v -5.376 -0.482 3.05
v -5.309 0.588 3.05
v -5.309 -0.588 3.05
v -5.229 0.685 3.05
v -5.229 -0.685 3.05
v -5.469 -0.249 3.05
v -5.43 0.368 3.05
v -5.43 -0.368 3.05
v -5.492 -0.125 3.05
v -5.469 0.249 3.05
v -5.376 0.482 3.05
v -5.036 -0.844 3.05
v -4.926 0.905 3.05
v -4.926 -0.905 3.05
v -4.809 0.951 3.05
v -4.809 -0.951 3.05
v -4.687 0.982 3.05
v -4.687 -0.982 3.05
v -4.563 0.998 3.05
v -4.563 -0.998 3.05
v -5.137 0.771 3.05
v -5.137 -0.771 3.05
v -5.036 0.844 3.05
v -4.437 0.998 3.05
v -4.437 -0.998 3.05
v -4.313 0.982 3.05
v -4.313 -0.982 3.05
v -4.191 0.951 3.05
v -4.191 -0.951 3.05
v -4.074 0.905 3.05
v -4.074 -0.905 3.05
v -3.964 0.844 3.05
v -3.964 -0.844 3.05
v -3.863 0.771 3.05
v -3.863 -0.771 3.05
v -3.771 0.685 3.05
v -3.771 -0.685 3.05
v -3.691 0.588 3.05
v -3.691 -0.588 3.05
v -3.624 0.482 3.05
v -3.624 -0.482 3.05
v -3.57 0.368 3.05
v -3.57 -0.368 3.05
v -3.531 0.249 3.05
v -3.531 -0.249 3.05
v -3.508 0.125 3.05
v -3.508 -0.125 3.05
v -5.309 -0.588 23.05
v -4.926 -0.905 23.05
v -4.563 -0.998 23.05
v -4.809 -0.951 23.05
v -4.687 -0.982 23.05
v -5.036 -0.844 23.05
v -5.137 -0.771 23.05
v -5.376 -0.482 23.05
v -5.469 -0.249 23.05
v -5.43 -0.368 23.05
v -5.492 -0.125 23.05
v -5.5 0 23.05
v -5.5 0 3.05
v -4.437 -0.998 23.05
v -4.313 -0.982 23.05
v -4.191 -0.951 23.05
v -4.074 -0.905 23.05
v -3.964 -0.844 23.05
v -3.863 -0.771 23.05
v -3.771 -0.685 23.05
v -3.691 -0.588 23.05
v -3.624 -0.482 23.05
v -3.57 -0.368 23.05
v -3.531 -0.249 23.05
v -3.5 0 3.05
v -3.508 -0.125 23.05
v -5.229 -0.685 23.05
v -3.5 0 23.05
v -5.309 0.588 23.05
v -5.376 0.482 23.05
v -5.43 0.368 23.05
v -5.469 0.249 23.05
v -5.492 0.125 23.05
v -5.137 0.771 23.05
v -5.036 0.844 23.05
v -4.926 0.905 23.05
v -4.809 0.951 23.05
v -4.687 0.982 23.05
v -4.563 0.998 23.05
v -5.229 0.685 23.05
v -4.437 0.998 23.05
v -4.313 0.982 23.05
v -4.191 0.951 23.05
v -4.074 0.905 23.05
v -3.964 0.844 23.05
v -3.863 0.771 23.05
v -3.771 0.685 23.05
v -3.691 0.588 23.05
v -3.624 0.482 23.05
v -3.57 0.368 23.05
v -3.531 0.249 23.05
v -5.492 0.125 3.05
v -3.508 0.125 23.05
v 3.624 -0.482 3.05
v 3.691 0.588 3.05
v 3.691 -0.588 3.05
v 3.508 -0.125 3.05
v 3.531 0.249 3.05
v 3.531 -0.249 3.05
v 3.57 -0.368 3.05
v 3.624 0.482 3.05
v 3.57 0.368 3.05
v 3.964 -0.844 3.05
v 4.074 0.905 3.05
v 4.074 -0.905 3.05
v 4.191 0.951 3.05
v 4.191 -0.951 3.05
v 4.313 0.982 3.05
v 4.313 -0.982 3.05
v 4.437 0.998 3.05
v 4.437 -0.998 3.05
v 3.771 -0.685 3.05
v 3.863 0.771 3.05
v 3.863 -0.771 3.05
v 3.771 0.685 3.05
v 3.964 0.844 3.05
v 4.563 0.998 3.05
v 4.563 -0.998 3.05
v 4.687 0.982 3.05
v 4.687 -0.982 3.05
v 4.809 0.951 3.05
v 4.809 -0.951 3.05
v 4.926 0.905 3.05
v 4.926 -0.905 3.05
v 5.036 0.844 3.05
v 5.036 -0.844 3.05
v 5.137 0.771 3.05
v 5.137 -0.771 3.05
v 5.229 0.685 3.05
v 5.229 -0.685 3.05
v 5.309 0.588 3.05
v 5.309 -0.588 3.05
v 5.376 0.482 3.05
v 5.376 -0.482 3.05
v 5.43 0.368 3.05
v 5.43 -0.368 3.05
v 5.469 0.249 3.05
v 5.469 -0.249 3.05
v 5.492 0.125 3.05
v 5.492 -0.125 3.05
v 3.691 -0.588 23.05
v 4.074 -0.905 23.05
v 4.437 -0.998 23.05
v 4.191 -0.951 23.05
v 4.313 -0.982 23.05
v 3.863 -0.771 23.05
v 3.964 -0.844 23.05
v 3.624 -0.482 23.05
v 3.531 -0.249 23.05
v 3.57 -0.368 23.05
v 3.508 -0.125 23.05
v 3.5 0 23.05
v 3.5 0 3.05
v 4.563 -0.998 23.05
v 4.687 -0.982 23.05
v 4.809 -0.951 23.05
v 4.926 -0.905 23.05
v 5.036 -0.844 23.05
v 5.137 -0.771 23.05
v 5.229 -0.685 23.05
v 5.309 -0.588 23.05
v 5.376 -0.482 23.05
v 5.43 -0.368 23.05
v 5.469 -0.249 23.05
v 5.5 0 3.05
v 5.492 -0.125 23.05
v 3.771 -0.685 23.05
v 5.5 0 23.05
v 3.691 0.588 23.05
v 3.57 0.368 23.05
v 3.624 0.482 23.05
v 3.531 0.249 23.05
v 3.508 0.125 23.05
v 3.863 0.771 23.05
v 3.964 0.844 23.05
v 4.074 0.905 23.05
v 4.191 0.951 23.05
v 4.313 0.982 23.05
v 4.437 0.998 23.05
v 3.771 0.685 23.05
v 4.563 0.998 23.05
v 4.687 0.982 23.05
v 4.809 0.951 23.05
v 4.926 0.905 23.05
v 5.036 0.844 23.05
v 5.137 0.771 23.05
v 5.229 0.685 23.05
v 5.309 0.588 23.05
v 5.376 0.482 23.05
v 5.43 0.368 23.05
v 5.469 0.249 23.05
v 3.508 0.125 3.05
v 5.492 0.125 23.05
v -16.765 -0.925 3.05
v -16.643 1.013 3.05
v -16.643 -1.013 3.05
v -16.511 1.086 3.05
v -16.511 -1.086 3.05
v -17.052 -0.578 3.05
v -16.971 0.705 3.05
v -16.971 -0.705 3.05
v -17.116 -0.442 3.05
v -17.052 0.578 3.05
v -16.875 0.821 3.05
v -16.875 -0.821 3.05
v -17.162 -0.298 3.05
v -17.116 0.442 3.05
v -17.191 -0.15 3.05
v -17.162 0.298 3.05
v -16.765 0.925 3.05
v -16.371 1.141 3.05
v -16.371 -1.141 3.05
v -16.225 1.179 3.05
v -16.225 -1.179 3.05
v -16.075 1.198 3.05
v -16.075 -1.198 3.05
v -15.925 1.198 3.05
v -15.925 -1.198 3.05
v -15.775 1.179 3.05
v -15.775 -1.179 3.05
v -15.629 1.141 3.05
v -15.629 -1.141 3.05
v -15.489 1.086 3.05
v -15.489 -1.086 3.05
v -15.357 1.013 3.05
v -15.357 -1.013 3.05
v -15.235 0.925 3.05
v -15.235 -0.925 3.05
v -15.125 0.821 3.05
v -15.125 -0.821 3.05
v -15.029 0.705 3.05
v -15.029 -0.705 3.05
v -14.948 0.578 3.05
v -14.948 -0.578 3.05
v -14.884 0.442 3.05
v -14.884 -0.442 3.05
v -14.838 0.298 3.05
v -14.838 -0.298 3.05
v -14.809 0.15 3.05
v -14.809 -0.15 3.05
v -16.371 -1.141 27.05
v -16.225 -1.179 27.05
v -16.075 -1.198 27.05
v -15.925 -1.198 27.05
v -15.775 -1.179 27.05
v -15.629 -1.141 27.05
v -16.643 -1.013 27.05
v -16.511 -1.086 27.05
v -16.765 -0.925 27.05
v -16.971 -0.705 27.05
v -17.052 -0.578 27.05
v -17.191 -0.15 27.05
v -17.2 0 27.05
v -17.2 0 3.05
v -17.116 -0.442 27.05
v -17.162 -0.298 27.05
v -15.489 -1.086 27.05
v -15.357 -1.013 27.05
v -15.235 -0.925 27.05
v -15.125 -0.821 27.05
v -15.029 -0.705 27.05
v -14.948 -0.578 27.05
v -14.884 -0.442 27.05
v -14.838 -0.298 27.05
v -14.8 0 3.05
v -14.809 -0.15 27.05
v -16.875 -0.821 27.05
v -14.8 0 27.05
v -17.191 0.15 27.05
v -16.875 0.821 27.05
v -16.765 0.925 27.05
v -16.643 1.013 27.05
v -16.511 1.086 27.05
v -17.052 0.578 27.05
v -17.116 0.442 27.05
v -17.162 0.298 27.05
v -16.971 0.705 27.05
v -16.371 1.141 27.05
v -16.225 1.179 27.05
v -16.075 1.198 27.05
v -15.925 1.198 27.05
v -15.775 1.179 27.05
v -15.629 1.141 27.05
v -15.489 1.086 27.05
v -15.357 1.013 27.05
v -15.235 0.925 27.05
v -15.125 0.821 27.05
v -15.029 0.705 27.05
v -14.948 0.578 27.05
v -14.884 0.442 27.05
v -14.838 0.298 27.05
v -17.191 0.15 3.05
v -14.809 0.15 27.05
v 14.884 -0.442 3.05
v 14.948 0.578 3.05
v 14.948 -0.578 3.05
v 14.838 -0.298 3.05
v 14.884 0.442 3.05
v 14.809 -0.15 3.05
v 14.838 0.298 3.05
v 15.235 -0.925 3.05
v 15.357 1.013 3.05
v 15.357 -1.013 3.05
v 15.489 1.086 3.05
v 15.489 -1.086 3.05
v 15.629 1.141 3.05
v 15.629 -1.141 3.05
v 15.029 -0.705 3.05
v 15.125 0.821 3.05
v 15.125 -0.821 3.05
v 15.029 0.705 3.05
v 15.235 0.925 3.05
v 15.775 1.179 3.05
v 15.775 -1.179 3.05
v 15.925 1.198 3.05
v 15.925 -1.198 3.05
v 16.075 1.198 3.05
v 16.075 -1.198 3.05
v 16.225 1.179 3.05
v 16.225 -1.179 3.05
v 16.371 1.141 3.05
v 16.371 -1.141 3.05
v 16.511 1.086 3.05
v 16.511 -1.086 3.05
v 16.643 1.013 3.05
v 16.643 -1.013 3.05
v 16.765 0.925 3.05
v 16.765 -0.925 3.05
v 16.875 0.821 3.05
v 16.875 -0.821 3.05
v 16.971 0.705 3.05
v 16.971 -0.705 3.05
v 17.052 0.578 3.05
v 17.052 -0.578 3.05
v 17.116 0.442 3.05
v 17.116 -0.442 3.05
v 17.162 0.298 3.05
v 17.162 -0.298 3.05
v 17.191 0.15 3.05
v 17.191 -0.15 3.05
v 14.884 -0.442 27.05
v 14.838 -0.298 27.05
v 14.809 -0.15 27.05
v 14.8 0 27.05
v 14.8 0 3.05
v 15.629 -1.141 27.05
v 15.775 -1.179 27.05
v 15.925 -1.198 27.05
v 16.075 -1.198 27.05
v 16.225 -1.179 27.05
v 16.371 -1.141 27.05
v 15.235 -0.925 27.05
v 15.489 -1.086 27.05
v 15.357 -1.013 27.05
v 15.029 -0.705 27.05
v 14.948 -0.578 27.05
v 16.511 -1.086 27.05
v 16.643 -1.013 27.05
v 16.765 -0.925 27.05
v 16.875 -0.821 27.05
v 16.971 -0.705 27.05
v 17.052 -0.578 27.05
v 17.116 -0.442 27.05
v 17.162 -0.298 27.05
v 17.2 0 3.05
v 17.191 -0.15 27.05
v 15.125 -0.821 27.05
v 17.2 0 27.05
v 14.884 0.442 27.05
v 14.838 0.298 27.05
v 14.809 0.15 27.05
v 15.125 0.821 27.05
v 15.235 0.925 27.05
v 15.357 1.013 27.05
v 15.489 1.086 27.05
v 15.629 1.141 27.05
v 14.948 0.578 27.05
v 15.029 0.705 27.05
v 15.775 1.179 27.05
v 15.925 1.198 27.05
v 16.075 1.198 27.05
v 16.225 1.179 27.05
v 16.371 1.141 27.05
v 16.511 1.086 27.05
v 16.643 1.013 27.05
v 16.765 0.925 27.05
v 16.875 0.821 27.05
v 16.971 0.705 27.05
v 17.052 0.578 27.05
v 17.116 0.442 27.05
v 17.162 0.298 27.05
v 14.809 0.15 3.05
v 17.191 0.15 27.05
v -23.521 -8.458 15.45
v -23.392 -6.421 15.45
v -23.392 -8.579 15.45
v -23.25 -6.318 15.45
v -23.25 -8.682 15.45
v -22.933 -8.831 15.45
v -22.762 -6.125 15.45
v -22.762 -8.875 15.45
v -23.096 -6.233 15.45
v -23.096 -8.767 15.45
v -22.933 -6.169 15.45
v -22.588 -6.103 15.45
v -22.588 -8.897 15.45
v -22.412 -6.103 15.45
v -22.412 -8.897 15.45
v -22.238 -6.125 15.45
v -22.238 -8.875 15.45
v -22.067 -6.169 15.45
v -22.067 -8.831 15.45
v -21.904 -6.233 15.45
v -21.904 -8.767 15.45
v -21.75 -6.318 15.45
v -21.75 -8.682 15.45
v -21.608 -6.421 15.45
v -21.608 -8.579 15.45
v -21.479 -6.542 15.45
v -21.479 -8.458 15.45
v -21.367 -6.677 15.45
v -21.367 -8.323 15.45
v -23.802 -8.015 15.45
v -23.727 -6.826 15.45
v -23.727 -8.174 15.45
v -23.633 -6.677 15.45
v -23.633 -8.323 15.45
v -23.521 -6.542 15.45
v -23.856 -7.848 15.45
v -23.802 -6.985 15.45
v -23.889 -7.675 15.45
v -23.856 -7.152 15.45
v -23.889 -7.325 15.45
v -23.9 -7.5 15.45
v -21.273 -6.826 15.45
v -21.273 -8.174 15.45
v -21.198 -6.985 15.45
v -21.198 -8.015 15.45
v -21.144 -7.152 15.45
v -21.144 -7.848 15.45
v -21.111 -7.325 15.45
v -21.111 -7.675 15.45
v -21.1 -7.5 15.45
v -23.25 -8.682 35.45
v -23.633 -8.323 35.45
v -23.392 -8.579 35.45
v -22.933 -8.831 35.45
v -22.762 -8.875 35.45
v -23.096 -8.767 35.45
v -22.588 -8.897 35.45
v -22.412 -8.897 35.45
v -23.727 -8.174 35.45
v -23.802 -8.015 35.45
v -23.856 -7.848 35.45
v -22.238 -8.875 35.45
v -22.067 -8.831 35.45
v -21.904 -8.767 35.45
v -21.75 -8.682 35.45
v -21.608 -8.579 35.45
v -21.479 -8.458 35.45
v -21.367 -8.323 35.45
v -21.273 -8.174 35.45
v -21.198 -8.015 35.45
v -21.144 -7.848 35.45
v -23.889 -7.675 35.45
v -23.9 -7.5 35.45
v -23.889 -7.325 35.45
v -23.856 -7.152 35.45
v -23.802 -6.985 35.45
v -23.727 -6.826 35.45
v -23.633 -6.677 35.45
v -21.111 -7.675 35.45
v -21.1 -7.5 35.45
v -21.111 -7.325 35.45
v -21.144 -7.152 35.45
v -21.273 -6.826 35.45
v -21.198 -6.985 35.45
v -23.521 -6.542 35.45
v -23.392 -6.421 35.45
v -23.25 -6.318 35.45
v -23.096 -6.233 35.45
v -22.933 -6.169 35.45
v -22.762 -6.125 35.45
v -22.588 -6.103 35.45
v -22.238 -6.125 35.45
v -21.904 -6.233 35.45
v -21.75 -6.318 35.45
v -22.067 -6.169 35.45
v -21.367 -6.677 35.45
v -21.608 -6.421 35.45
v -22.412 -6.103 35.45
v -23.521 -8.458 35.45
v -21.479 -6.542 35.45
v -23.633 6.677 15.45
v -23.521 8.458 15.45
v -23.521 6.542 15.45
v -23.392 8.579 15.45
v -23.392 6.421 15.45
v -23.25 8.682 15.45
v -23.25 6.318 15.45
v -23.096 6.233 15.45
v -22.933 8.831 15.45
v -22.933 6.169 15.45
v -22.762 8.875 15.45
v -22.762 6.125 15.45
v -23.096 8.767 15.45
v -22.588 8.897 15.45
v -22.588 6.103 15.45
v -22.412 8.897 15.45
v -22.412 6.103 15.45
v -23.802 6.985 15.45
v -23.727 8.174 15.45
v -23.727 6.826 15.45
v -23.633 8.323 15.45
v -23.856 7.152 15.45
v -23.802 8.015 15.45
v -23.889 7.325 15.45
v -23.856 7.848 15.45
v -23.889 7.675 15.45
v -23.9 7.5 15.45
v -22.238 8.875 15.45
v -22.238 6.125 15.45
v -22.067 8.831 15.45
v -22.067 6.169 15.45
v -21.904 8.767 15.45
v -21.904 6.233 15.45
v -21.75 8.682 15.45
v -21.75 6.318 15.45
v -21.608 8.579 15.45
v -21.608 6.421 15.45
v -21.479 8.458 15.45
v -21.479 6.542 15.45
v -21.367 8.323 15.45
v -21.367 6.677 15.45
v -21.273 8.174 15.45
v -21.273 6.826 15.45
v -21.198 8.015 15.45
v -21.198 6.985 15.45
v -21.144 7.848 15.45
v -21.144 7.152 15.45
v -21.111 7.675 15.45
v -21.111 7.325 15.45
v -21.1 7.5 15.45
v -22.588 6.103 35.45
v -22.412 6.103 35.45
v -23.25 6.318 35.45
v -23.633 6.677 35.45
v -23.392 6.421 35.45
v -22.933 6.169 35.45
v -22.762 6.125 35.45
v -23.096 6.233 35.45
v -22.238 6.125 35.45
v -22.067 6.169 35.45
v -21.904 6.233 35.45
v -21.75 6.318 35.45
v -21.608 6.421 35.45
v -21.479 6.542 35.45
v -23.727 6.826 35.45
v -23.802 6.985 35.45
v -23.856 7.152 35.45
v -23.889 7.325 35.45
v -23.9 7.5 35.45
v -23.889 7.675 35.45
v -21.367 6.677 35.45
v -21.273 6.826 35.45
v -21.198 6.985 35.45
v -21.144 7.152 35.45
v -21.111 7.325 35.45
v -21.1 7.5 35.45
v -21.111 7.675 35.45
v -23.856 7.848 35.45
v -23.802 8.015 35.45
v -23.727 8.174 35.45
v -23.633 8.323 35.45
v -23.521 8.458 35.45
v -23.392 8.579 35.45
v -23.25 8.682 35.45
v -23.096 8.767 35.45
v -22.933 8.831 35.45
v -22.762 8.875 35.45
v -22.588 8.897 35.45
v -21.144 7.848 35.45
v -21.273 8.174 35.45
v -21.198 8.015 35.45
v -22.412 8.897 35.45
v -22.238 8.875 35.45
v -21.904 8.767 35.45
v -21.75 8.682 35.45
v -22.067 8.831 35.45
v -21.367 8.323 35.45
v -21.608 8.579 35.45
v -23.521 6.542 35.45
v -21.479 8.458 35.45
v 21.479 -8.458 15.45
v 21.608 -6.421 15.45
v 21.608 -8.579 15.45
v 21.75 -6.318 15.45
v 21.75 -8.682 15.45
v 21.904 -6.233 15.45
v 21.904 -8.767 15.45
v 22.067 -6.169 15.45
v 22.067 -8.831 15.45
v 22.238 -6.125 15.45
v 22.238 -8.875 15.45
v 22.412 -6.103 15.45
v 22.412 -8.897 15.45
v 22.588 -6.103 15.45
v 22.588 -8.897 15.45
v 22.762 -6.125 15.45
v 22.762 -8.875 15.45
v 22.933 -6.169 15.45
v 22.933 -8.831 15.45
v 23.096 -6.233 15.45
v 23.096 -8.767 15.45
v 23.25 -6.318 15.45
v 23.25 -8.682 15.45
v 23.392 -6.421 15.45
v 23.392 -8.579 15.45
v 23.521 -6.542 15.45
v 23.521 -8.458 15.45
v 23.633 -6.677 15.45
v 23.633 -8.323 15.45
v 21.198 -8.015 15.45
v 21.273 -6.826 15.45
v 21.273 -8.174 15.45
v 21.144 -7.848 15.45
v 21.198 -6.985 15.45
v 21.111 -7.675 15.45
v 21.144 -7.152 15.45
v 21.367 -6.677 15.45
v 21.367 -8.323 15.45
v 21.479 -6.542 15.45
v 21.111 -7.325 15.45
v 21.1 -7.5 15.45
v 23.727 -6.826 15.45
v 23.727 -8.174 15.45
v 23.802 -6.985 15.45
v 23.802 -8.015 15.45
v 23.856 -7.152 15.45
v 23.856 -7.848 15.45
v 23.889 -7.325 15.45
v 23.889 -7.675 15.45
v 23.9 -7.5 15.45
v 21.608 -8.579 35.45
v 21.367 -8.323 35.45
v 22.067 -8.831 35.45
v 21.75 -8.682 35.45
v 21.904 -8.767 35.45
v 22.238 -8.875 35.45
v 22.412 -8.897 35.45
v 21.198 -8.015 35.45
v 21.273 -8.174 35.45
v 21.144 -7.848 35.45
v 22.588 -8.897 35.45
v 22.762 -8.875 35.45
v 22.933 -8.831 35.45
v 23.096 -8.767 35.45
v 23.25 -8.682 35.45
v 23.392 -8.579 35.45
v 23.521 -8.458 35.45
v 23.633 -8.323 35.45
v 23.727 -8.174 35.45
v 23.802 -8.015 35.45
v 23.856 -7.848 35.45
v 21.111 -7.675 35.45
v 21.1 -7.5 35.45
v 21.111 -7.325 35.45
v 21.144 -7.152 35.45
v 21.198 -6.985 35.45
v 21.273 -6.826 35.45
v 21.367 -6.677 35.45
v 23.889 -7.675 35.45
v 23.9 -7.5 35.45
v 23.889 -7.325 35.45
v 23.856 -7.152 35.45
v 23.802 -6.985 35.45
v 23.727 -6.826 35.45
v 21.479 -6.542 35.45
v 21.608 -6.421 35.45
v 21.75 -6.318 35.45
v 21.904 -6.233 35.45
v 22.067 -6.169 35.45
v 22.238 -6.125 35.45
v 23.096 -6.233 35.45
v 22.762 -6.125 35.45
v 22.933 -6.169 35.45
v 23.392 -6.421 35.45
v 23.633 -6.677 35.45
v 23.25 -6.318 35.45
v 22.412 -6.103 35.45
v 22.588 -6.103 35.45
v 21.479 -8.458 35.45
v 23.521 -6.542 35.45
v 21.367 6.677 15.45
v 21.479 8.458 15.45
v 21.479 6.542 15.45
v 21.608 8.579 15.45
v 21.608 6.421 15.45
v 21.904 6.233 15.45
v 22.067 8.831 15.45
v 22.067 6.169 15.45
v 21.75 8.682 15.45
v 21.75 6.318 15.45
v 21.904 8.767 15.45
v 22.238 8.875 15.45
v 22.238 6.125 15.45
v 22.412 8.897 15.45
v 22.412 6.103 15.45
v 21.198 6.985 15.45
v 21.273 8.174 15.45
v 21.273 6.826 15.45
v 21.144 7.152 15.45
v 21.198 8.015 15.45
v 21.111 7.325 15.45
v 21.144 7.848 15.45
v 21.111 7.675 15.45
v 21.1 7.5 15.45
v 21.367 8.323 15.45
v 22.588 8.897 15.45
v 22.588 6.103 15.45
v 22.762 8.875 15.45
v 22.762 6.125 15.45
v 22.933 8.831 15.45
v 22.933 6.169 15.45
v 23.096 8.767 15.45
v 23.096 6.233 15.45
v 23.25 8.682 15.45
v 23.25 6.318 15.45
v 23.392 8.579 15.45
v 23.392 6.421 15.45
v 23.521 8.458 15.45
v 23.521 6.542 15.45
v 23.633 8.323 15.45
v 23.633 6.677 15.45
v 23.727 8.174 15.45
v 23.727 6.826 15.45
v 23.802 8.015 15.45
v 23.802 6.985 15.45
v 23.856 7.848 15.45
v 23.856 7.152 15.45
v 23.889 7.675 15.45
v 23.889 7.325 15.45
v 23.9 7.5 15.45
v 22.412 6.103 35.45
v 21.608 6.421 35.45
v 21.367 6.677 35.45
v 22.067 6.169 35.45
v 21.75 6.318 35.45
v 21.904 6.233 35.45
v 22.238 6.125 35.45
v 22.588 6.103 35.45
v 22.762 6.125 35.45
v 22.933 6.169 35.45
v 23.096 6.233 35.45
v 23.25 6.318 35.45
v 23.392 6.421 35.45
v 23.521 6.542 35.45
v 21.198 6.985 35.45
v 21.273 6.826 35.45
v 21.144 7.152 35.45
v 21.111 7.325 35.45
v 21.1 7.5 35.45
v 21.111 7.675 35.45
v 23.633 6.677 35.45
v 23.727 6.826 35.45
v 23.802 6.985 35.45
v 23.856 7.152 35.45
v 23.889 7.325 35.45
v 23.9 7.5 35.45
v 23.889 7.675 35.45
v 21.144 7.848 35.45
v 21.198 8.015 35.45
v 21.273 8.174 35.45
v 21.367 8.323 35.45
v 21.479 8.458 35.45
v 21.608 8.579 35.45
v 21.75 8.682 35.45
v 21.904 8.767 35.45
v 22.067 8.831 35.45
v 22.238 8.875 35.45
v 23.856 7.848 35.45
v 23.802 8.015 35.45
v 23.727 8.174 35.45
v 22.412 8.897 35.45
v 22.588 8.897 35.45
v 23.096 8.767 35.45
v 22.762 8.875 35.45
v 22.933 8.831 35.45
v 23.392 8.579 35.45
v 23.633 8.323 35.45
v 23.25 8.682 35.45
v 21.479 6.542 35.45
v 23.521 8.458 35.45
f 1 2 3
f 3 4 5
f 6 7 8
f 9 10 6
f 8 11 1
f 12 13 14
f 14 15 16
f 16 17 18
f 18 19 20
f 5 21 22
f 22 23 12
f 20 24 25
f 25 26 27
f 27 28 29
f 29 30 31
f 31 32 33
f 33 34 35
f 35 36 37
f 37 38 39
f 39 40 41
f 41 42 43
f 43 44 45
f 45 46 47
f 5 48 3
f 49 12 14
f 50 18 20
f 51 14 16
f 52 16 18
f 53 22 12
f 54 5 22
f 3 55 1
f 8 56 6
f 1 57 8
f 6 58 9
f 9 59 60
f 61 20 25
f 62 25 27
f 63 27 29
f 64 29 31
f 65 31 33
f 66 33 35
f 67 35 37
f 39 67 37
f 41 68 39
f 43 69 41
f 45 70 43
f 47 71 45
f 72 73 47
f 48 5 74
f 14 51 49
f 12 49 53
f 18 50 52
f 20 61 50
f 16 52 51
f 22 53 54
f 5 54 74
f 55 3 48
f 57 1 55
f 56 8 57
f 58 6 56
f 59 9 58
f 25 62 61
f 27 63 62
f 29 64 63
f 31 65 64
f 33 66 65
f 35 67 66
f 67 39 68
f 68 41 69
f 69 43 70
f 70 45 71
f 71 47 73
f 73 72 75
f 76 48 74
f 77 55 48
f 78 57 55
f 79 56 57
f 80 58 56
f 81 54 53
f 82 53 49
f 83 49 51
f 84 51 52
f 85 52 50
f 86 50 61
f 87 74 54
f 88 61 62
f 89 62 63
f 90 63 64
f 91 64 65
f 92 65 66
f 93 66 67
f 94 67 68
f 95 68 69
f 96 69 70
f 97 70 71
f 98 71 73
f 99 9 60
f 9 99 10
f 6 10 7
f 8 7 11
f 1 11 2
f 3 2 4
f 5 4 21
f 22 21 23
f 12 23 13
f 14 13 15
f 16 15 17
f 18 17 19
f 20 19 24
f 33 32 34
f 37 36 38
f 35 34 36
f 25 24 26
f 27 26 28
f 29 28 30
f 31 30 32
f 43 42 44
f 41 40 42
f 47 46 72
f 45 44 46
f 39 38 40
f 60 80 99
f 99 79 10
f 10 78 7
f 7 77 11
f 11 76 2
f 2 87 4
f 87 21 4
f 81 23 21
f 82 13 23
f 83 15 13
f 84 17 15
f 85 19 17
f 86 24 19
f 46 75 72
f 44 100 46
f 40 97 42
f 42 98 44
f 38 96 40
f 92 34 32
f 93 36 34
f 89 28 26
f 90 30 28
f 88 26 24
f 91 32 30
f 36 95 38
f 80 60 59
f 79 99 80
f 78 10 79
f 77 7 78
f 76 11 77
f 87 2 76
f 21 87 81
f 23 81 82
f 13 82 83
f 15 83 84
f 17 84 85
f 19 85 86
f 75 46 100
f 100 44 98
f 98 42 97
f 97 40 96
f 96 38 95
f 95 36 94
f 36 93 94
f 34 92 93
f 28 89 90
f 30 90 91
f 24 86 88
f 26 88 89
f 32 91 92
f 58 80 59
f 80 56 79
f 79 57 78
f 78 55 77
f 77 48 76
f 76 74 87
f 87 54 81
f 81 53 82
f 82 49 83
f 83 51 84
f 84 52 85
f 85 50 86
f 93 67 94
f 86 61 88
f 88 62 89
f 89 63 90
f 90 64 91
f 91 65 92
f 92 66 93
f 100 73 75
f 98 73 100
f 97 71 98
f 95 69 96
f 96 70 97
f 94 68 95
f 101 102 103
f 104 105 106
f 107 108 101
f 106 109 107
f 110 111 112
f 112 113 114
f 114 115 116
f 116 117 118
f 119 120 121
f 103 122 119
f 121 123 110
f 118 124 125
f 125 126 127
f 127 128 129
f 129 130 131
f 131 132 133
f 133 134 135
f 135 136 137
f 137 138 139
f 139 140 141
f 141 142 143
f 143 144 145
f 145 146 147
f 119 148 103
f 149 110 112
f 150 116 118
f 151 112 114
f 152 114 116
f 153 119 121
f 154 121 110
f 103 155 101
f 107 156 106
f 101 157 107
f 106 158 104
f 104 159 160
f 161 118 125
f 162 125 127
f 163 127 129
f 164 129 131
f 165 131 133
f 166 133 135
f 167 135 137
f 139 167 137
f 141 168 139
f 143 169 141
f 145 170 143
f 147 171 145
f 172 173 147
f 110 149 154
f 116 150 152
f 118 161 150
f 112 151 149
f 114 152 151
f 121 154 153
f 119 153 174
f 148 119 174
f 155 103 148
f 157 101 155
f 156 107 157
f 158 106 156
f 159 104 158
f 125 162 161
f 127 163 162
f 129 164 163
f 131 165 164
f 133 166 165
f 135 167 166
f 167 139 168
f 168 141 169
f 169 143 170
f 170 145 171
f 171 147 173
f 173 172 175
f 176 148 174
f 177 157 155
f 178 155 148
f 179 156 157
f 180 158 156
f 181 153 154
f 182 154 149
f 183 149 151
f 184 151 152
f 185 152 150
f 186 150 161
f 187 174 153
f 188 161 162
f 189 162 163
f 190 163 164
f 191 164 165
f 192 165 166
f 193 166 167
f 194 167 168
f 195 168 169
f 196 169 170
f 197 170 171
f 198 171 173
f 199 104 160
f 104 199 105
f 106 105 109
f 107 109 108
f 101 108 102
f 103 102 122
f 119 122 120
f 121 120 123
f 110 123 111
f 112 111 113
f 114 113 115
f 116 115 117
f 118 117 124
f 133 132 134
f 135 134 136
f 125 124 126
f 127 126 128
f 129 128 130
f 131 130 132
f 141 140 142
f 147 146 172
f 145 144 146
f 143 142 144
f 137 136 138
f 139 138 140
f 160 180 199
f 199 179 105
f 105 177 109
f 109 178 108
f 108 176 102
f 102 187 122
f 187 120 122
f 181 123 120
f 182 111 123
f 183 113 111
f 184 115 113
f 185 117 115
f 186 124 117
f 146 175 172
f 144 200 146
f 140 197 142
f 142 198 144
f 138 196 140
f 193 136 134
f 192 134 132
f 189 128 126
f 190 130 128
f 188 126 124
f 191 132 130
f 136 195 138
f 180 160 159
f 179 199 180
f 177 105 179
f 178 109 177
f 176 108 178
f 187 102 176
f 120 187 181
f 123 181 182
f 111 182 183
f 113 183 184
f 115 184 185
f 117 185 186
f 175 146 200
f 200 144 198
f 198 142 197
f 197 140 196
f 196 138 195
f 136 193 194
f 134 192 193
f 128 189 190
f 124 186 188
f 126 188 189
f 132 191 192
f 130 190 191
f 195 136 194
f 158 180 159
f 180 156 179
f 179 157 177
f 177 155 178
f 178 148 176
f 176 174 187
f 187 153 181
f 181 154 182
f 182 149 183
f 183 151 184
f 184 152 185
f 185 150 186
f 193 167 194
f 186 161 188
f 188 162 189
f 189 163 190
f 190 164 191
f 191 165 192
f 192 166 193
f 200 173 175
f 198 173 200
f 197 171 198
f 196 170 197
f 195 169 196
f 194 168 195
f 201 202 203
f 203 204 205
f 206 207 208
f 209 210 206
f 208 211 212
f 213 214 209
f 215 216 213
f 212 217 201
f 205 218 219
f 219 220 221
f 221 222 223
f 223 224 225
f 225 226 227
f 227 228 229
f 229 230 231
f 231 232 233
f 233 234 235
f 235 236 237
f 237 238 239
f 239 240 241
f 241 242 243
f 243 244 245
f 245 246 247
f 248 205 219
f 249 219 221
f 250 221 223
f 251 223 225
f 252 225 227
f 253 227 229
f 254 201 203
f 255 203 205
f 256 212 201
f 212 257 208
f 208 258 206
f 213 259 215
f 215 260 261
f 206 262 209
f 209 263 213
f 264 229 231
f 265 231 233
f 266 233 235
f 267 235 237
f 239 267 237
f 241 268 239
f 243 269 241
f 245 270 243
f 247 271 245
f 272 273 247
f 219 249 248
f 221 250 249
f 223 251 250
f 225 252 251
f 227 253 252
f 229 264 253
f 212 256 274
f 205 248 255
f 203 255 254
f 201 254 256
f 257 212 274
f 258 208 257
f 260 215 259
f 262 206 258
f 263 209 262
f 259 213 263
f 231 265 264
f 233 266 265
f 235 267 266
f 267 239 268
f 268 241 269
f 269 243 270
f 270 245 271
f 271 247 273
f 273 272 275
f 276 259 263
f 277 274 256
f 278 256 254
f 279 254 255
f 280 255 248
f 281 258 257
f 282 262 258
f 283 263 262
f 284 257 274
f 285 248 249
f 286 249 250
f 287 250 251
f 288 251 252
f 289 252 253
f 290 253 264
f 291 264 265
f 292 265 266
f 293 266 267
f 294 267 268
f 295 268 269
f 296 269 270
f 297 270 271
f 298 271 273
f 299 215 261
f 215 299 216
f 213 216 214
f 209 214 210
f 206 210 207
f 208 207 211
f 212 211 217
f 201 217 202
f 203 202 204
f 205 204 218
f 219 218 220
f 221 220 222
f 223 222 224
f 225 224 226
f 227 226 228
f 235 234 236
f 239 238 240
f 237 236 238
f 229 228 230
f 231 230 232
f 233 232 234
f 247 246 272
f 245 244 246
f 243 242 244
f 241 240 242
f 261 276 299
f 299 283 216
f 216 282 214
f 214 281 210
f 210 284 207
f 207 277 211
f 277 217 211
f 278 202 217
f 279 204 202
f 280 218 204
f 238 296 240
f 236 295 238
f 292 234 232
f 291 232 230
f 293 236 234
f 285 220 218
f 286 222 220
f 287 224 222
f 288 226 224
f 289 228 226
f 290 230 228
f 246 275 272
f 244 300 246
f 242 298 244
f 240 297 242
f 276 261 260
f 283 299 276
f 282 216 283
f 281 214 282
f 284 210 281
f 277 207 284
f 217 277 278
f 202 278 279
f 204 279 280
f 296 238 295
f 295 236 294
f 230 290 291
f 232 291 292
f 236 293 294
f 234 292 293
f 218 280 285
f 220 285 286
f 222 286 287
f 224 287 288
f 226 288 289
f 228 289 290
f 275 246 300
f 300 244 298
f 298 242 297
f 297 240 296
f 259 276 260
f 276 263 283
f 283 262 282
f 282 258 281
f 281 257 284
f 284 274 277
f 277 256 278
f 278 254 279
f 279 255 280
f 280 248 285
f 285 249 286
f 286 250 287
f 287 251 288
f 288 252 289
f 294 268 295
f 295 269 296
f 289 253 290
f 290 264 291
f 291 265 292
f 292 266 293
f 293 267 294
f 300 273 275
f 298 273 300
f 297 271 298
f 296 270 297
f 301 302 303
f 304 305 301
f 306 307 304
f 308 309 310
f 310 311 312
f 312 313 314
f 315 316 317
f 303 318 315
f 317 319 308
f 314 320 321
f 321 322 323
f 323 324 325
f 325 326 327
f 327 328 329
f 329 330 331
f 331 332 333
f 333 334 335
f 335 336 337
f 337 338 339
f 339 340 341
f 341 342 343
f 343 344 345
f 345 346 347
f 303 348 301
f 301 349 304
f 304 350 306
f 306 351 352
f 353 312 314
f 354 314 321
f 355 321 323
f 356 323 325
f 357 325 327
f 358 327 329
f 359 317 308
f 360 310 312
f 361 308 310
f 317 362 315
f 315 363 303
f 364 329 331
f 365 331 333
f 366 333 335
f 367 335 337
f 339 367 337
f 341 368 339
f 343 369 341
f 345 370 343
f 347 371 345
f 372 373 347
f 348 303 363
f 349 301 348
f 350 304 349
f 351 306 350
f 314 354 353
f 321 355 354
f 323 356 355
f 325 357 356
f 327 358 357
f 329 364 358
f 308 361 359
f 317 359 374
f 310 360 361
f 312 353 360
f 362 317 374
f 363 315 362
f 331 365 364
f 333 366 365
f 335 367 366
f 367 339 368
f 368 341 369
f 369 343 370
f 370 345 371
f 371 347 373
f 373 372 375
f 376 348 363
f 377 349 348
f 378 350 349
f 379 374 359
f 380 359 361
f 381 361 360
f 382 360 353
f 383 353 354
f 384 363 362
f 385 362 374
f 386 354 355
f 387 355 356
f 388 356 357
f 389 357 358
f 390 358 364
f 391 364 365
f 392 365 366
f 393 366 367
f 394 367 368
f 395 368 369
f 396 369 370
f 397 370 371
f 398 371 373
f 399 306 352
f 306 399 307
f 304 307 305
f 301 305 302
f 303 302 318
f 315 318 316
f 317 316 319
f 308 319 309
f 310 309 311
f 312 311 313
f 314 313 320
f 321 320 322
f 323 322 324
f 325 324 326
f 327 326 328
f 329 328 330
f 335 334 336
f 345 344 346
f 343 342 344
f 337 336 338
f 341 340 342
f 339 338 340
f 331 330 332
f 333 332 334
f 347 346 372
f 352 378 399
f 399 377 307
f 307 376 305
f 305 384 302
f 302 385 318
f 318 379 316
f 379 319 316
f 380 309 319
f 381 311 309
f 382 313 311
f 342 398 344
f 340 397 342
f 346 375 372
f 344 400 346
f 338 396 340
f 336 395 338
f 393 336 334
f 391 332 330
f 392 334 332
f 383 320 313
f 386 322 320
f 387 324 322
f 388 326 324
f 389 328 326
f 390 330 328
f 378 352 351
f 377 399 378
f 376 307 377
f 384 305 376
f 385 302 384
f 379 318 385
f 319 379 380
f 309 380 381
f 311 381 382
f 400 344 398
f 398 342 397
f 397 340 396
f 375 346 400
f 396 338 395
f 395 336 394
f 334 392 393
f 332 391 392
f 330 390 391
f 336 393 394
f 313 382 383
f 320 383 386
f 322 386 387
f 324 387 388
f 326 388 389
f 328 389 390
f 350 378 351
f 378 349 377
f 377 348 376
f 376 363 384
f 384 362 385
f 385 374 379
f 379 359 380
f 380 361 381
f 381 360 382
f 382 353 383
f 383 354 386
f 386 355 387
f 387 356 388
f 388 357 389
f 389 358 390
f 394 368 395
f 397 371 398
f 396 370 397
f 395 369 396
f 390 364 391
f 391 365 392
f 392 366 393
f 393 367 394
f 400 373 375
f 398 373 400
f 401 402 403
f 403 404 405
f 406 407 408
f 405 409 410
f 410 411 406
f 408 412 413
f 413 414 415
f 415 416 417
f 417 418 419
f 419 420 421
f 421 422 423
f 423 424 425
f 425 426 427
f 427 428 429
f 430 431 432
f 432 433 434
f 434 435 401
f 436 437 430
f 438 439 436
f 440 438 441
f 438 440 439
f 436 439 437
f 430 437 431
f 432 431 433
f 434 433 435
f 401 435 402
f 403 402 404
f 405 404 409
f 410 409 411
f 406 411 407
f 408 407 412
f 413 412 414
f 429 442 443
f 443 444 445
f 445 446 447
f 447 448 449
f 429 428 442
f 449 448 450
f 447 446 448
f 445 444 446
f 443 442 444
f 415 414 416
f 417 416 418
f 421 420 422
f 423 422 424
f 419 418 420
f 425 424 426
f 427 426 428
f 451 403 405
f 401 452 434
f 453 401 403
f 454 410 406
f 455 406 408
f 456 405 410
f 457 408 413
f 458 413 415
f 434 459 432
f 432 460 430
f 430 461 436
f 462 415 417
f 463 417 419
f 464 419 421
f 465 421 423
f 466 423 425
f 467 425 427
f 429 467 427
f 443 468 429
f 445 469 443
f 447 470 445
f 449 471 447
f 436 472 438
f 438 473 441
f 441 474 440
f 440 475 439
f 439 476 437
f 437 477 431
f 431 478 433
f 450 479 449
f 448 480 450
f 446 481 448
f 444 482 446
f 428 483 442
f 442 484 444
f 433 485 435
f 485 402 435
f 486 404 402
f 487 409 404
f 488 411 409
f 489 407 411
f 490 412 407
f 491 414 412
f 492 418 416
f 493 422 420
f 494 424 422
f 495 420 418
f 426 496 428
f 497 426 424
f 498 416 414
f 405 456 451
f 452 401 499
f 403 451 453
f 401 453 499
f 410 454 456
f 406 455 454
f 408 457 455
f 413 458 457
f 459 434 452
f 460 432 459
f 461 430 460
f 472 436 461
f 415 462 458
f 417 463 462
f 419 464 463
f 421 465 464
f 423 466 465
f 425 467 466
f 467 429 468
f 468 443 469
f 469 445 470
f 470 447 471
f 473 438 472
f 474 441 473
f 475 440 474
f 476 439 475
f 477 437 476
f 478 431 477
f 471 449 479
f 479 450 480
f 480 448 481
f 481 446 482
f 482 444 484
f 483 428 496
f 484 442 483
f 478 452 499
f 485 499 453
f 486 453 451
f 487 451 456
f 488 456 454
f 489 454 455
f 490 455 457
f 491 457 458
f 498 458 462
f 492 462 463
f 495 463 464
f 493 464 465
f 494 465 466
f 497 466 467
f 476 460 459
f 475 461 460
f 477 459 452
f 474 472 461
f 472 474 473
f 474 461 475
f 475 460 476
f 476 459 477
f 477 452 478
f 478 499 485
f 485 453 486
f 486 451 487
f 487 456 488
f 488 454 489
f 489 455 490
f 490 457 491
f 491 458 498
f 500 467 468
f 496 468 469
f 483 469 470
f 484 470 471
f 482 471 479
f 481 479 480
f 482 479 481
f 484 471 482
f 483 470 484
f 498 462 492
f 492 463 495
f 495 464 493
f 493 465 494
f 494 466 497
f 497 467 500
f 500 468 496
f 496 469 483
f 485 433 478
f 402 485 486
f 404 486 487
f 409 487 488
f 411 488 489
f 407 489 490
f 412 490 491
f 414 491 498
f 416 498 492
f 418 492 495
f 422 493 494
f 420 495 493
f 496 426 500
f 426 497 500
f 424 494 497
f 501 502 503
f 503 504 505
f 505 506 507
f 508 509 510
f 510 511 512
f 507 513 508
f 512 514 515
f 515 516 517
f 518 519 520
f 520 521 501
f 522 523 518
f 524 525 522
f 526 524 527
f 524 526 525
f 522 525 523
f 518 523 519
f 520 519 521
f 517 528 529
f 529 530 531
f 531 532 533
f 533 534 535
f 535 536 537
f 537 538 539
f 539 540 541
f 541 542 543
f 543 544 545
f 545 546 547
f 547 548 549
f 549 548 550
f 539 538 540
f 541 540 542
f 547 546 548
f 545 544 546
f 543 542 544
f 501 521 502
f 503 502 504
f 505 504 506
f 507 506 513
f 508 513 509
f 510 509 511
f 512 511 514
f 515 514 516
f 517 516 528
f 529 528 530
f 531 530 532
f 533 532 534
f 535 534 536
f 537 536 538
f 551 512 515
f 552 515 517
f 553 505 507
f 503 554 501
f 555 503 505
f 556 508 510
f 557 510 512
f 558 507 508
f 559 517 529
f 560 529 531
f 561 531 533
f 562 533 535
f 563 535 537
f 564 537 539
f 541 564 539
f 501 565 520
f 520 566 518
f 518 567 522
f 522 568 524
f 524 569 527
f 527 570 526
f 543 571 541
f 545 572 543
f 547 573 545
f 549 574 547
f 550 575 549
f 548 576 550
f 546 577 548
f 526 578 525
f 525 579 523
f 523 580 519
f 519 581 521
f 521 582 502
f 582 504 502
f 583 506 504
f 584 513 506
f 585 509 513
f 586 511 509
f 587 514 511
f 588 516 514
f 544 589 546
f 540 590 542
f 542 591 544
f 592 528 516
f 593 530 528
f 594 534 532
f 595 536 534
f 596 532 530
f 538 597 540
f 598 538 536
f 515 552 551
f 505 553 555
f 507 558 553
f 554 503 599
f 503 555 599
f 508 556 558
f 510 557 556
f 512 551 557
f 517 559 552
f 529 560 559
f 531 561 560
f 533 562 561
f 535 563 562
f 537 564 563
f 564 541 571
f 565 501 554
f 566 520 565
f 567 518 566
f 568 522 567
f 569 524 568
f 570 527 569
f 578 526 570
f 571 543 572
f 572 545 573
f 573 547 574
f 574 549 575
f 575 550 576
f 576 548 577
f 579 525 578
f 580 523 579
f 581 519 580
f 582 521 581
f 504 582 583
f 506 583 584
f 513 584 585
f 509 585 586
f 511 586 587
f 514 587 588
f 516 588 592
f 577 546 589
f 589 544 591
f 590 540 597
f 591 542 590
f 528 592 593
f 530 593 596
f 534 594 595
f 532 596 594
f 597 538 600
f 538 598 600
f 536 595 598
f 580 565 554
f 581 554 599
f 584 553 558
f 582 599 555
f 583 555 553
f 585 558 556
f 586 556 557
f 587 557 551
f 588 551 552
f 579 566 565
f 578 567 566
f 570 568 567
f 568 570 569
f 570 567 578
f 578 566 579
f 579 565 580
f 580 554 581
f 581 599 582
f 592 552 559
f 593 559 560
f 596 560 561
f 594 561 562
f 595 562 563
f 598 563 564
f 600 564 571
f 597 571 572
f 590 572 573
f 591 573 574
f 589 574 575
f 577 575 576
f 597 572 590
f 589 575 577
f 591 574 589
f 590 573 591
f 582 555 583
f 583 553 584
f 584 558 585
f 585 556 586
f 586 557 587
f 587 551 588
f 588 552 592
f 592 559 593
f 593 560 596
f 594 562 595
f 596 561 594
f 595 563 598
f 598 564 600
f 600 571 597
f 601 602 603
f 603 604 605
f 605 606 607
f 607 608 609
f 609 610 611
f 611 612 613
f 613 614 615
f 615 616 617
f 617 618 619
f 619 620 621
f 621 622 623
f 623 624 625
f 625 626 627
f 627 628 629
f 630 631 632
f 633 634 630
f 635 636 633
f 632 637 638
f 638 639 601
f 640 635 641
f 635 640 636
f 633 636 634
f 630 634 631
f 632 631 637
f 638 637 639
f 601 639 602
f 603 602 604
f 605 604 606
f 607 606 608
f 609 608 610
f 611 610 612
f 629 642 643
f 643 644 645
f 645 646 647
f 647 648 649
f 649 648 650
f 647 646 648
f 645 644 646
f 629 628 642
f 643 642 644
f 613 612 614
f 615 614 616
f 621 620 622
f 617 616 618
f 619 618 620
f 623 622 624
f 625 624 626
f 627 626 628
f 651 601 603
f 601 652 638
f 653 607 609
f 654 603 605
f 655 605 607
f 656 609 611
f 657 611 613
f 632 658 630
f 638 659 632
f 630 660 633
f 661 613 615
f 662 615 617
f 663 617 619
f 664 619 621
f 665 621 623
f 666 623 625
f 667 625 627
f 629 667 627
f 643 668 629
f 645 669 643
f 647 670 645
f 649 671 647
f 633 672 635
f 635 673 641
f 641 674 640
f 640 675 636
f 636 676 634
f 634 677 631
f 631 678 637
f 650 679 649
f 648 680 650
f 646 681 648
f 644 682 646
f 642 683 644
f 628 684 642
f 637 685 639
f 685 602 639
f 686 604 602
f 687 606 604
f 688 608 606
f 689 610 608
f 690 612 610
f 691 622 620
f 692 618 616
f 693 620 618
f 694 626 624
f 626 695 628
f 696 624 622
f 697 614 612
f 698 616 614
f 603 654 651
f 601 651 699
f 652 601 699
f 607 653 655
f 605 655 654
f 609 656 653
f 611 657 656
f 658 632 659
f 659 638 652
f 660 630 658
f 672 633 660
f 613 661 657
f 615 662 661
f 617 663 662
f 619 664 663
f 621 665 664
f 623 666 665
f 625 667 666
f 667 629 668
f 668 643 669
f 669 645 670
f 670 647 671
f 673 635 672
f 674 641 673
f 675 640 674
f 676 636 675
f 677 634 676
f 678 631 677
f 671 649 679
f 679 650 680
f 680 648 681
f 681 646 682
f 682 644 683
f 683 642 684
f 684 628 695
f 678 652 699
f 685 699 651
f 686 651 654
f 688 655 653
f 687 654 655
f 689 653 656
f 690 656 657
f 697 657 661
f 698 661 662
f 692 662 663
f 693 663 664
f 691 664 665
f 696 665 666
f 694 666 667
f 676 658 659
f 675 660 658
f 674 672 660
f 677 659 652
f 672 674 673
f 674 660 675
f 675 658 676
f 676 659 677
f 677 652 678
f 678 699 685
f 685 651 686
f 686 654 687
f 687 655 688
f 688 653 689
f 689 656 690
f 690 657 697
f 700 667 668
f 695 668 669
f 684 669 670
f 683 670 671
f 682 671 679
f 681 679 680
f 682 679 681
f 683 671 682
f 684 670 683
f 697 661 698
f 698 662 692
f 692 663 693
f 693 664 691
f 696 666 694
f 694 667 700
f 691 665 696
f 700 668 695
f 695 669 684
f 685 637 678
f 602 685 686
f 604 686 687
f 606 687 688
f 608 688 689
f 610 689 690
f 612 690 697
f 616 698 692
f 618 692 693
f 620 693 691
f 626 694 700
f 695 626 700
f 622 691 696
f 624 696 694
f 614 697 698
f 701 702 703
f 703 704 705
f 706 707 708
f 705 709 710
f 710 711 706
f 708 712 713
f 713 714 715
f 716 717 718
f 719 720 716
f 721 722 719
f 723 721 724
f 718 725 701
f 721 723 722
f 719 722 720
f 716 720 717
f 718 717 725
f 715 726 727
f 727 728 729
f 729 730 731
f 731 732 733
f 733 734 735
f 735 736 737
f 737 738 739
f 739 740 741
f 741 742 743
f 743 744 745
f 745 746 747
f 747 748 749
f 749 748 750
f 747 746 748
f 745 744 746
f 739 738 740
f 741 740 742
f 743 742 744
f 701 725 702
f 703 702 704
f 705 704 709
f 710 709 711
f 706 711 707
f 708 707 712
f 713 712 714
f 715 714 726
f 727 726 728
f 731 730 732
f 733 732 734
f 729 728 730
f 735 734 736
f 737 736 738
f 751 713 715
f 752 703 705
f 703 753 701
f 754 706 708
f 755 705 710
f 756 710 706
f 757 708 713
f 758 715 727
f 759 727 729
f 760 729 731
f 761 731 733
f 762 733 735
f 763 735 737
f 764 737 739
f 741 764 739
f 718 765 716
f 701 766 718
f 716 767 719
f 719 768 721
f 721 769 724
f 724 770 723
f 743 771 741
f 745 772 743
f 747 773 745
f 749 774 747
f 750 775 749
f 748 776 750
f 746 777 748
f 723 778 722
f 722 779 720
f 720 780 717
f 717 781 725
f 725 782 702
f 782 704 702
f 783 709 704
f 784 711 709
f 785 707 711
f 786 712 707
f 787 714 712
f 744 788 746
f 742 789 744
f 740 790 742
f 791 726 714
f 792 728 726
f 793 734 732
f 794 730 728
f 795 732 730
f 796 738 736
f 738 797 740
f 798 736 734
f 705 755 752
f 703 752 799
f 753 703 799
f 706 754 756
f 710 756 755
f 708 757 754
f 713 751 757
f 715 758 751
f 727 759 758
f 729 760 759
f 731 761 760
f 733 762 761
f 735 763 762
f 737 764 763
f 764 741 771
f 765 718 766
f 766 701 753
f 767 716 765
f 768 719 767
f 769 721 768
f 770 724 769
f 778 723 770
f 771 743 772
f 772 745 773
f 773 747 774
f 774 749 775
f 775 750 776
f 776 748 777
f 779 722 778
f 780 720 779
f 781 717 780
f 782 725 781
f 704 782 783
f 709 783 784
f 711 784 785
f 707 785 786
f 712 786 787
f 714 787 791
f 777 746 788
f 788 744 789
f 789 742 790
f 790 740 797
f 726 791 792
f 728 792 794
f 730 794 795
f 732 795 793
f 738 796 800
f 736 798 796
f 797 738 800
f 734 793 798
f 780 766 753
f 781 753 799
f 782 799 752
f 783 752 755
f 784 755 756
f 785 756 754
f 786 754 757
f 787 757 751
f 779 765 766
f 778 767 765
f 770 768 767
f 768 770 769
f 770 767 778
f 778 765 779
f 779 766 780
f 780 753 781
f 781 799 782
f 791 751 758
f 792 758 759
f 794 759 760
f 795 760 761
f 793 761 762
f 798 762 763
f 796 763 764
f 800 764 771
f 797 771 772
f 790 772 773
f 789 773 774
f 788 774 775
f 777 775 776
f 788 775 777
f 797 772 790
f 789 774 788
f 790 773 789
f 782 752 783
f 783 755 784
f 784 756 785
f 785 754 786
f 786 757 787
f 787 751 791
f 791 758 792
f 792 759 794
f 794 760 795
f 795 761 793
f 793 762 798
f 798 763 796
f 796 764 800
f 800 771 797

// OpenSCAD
$fn = 50;

difference() {
	union() {
		translate(v = [-4.5, 0, 3.05]) {
			cylinder(h = 20, r = 1);
		}
		translate(v = [4.5, 0, 3.05]) {
			cylinder(h = 20, r = 1);
		}
		translate(v = [-16, 0, 3.0500000000000007]) {
			cylinder(h = 24, r = 1.2);
		}
		translate(v = [16, 0, 3.0500000000000007]) {
			cylinder(h = 24, r = 1.2);
		}
		translate(v = [-22.5, -7.5, 15.45]) {
			cylinder(h = 20, r = 1.4);
		}
		translate(v = [-22.5, 7.5, 15.45]) {
			cylinder(h = 20, r = 1.4);
		}
		translate(v = [22.5, -7.5, 15.45]) {
			cylinder(h = 20, r = 1.4);
		}
		translate(v = [22.5, 7.5, 15.45]) {
			cylinder(h = 20, r = 1.4);
		}
	}
	union();
}
